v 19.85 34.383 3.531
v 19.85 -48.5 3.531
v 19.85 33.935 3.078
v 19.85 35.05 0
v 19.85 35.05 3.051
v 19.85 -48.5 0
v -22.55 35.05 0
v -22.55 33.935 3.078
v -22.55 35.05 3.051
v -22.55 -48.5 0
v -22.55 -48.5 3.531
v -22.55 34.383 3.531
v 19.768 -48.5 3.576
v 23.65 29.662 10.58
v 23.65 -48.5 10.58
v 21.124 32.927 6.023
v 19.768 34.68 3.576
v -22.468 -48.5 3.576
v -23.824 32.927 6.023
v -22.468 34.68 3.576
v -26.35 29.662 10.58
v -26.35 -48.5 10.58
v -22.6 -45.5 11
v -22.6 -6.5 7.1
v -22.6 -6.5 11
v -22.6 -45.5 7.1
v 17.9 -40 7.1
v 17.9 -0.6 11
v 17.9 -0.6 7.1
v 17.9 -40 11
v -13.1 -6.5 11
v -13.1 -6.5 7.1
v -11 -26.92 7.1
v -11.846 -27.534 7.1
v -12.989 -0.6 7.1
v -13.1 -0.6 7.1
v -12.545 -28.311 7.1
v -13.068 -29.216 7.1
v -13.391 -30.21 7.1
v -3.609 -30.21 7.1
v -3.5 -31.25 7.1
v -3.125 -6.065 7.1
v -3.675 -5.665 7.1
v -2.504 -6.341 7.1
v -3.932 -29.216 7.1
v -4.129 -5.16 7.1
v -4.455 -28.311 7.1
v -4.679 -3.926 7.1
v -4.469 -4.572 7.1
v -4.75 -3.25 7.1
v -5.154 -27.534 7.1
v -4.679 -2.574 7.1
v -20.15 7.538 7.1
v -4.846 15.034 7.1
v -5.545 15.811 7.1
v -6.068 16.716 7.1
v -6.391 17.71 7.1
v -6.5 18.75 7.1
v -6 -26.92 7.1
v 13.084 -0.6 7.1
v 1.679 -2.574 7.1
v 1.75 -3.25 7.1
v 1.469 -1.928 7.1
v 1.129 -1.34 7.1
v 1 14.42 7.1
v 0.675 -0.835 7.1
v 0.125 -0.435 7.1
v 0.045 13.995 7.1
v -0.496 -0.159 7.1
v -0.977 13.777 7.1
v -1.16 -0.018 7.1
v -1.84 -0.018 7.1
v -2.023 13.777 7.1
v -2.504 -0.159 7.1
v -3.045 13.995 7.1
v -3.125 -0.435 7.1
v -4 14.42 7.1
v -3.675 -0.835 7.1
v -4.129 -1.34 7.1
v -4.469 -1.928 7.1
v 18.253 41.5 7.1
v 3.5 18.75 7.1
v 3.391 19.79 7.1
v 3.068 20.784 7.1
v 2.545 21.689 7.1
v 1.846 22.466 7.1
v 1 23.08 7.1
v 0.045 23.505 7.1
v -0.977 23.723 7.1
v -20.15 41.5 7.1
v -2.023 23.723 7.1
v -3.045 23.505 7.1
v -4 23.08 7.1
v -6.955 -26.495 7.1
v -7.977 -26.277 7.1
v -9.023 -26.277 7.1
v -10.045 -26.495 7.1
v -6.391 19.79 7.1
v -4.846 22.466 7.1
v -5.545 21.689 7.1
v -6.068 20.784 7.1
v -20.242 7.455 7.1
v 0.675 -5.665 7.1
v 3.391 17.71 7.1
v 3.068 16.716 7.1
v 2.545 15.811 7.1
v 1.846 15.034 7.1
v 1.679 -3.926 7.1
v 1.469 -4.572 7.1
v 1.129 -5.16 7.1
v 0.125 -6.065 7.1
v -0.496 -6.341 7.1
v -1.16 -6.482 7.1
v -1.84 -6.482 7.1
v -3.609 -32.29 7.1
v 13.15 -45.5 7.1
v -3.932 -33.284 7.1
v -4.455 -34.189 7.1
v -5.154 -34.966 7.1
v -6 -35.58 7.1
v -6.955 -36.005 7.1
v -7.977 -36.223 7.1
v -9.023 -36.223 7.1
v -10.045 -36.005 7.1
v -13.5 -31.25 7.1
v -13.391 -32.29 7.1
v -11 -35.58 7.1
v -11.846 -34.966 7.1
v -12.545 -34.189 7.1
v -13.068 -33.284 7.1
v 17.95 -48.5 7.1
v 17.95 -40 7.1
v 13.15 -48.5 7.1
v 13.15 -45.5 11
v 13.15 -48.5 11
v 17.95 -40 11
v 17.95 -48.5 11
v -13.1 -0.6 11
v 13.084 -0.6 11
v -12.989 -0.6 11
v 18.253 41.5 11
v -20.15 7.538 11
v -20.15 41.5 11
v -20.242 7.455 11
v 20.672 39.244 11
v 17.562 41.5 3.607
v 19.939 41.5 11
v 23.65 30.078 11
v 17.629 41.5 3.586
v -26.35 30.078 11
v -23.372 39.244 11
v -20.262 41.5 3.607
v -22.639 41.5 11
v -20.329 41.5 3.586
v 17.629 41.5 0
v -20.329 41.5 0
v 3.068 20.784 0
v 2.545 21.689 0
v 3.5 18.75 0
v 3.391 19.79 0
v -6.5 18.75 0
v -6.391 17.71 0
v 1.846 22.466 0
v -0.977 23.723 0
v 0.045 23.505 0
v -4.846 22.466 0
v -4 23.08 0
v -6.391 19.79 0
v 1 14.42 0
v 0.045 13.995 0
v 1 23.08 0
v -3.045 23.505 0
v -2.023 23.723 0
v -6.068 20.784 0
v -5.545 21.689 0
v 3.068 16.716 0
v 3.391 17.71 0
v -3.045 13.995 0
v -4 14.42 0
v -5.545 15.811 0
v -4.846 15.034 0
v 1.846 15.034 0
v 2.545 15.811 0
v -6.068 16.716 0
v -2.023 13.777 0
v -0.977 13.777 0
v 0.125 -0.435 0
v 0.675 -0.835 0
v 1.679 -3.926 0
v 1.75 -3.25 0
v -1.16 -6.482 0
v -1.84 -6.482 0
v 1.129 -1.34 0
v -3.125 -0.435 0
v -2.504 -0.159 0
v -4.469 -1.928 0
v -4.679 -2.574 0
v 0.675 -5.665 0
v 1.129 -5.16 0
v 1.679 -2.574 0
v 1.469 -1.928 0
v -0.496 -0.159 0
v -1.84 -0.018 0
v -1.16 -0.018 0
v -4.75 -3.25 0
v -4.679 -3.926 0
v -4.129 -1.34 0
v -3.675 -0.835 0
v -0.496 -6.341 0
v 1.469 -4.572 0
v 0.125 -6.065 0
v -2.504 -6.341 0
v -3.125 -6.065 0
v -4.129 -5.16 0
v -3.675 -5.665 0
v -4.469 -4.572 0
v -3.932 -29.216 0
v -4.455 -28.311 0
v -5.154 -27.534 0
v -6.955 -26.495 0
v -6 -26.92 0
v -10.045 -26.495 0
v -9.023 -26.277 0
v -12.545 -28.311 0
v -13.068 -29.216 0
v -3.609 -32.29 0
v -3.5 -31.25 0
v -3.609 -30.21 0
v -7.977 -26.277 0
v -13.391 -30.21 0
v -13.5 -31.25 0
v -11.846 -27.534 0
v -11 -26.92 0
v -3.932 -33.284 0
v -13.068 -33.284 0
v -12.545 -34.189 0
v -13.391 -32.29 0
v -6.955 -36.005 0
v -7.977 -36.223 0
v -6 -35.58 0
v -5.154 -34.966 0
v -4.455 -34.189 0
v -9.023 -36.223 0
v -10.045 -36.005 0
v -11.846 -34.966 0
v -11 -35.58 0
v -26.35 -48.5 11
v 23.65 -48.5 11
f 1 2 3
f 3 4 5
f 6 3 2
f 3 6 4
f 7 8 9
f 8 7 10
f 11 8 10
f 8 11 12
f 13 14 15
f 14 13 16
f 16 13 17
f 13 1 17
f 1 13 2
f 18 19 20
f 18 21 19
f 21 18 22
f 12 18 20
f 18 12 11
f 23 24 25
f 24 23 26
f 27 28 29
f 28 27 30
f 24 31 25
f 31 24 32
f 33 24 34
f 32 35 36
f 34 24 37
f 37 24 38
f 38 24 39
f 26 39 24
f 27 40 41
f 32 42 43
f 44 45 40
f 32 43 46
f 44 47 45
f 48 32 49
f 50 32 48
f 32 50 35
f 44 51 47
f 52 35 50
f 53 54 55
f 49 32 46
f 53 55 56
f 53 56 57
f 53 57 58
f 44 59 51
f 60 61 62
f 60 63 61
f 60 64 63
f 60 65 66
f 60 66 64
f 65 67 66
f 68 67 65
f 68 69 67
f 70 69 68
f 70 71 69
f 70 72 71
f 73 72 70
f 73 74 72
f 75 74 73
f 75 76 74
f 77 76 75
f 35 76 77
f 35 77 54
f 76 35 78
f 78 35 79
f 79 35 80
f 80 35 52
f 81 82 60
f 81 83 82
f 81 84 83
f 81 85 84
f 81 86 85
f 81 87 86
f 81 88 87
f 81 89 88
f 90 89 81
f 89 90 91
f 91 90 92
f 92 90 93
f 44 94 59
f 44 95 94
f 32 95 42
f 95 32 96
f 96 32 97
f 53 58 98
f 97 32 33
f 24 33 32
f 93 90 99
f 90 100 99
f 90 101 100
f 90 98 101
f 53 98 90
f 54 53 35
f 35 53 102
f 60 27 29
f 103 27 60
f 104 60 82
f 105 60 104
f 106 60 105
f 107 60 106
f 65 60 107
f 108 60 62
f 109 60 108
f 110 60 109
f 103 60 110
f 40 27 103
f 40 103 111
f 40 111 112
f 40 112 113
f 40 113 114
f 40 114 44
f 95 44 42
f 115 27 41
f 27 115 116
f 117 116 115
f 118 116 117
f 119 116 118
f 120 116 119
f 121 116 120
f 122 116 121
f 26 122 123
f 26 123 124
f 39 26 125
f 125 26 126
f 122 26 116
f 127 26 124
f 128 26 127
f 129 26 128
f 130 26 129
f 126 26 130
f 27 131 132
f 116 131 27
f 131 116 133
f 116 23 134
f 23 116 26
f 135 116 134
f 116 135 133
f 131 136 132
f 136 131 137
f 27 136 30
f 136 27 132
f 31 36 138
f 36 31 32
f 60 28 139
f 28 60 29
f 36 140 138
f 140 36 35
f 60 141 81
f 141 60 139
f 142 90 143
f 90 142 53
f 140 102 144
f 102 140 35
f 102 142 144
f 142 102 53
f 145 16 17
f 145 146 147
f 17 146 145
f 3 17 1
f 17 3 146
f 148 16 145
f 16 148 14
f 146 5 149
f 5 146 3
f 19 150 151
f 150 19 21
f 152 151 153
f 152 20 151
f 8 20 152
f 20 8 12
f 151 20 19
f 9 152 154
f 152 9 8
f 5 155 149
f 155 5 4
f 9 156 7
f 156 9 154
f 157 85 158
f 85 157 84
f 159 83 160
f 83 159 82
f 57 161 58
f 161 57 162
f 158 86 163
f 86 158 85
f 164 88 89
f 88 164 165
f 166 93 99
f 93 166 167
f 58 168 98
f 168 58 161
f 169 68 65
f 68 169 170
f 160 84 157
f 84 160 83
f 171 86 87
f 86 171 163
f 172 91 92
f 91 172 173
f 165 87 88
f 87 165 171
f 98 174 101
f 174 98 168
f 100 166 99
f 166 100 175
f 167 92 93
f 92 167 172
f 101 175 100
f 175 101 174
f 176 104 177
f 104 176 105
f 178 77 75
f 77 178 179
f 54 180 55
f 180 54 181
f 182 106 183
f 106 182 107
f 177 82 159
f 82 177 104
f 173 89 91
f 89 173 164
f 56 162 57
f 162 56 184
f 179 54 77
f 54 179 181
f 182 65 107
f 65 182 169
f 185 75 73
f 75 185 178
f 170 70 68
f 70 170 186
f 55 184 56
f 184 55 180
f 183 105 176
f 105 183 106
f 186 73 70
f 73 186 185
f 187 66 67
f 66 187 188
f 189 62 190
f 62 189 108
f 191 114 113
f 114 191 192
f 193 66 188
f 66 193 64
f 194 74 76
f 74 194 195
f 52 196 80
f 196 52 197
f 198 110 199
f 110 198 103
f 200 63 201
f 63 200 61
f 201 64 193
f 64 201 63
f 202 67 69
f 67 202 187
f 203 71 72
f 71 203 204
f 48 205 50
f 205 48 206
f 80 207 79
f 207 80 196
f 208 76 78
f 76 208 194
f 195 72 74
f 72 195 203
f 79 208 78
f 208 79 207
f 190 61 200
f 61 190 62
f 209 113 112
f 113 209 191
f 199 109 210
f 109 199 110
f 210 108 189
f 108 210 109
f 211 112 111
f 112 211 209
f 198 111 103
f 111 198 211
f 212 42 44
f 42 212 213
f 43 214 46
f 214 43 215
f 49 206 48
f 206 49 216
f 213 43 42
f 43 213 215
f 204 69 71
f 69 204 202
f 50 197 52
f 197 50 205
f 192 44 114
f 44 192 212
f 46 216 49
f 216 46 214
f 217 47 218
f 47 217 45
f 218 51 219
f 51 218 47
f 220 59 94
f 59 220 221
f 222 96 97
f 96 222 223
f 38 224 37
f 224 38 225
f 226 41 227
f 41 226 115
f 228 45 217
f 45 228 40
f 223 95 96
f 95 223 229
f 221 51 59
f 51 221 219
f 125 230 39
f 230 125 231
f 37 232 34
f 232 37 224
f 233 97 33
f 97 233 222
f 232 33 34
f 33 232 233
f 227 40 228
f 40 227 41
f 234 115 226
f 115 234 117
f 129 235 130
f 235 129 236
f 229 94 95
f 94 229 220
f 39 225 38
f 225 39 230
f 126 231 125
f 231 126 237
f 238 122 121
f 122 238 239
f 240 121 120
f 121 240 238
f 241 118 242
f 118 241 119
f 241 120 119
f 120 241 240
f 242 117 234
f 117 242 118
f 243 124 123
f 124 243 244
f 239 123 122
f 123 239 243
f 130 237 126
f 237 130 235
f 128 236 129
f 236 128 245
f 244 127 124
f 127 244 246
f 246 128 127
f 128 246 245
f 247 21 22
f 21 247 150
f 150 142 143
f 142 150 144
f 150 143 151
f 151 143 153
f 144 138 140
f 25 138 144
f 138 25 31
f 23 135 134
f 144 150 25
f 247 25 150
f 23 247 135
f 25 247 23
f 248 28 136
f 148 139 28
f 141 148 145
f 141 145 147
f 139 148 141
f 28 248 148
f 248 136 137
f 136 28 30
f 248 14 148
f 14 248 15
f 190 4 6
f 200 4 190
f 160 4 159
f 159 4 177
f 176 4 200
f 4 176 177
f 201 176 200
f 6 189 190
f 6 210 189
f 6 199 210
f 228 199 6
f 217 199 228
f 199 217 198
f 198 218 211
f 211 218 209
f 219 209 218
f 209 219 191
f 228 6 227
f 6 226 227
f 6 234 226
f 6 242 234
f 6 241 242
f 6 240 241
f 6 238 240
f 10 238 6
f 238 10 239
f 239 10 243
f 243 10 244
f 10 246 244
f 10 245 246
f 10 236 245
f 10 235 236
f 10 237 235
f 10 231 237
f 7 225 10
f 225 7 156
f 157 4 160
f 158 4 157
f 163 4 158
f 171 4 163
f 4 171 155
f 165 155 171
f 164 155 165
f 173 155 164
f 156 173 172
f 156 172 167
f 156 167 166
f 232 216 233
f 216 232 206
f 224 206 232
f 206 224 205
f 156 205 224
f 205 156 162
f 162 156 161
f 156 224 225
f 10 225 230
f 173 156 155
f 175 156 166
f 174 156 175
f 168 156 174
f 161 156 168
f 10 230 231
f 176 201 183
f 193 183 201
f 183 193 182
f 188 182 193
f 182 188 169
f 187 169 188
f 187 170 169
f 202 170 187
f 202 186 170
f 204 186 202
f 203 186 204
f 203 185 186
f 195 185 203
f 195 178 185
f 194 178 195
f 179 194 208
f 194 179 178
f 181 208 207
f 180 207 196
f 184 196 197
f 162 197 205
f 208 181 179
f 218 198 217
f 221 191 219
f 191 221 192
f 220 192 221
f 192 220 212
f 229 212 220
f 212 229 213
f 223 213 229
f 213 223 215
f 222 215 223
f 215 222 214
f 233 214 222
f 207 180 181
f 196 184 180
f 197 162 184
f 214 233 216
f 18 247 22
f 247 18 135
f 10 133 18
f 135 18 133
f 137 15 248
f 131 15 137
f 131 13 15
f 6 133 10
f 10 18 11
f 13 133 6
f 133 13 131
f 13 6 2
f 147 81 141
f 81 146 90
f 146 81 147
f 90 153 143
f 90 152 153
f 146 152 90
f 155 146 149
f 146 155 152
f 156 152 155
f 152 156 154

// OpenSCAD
$fn = 30;
plate_center = [-1.35, -3.5, 5.5];
time=0;

module base_plate (holes_on = true) {
	difference () {
		translate(plate_center) cube([50, 90, 11], center = true);
		sides_flat();
		sides_angled();
		divot();
		front_top_angled();
		front_top_flat();
		if (holes_on) {
			holes();
		} else {
			//translate([0, (71.5 / 2) - 34, 0]) cylinder(r = 6.5 / 2, h = 100, center = true);
		}
		
	}
}

module sides_flat () {
	x = 26.2;
	z = -7.3;
	side = [10, 100, 11];
	translate(plate_center) {
		union () {
			translate([x, 0, z]) cube(side, center = true);
			translate([-x, 0, z]) cube(side, center = true);
		}
	}
}

module sides_angled() {
	x = 28.4;
	z = .9;
	angle = 29;
	side = [10, 100, 12];
	translate(plate_center) {
		union () {
			translate([x, 0, z]) rotate([0, angle, 0]) cube(side, center = true);
			translate([-x, 0, z]) rotate([0, -angle, 0]) cube(side, center = true);
		}
	}
}

module divot() {
	z = 6.6;
	deep = 10;
	back = [40.5, 39, deep];
	slider = [4.8, 10, deep];
	cent = [31, 10, deep];
	left_angle = [70, 20, deep];
	right_straight = [20, 50, deep];
	right_angle = [15, 15, deep];
	translate(plate_center) {
		union () {
			translate([-1, -22.5, z]) cube(back, center = true);
			translate([16.9, -22 - (39 / 2), z]) cube(slider, center = true);
			translate([3.75, -2.1, z]) cube(cent, center = true);
			translate([8.3, 35, z]) rotate([00, 0, 83]) cube(left_angle, center = true);
			translate([-8.8, 35.9, z]) cube(right_straight, center = true);
			translate([-8.3, 10.4, z]) rotate([00, 0, 42]) cube(right_angle, center = true);
		}
	}
}

module front_top_angled () {
	x = 26.8;
	y = 41;
	z = 1.5;
	angle_y = 17;
	angle_z = 18;
	angle_x = 4;
	side = [10, 15, 11];
	translate(plate_center) {
		union () {
			translate([x, y, z]) rotate([angle_x, angle_y, angle_z]) cube(side, center = true);
			translate([-x, y, z]) rotate([angle_x, -angle_y, -angle_z]) cube(side, center = true);
		}
	}
}

module front_top_flat () {
	x = 25.3;
	y = 42;
	z = -7.3;
	sides = [10, 10, 11];
	angle_z = 19;
	translate(plate_center) {
		union () {
			translate([x, y, z]) rotate([0, 0, angle_z]) cube(sides, center = true);
			translate([-x, y, z]) rotate([0, 0, -angle_z]) cube(sides, center = true);
		}
	}
}

module holes () {
	translate([-1.5, -5, 0]){
		//base reference
		// cube([50, 71.5, 40], center = true);
		//holes
		translate([0, (71.5 / 2) - 12, 0]) cylinder(r = 10 / 2, h = 100, center = true);
		translate([0, (71.5 / 2) - 34, 0]) cylinder(r = 6.5 / 2, h = 100, center = true);
		translate([(-50 / 2) + 18, (71.5 / 2) - 62, 0]) cylinder(r = 10 / 2, h = 100, center = true);
	}

}

rotate([0, 0, time]) base_plate(holes_on= true);
